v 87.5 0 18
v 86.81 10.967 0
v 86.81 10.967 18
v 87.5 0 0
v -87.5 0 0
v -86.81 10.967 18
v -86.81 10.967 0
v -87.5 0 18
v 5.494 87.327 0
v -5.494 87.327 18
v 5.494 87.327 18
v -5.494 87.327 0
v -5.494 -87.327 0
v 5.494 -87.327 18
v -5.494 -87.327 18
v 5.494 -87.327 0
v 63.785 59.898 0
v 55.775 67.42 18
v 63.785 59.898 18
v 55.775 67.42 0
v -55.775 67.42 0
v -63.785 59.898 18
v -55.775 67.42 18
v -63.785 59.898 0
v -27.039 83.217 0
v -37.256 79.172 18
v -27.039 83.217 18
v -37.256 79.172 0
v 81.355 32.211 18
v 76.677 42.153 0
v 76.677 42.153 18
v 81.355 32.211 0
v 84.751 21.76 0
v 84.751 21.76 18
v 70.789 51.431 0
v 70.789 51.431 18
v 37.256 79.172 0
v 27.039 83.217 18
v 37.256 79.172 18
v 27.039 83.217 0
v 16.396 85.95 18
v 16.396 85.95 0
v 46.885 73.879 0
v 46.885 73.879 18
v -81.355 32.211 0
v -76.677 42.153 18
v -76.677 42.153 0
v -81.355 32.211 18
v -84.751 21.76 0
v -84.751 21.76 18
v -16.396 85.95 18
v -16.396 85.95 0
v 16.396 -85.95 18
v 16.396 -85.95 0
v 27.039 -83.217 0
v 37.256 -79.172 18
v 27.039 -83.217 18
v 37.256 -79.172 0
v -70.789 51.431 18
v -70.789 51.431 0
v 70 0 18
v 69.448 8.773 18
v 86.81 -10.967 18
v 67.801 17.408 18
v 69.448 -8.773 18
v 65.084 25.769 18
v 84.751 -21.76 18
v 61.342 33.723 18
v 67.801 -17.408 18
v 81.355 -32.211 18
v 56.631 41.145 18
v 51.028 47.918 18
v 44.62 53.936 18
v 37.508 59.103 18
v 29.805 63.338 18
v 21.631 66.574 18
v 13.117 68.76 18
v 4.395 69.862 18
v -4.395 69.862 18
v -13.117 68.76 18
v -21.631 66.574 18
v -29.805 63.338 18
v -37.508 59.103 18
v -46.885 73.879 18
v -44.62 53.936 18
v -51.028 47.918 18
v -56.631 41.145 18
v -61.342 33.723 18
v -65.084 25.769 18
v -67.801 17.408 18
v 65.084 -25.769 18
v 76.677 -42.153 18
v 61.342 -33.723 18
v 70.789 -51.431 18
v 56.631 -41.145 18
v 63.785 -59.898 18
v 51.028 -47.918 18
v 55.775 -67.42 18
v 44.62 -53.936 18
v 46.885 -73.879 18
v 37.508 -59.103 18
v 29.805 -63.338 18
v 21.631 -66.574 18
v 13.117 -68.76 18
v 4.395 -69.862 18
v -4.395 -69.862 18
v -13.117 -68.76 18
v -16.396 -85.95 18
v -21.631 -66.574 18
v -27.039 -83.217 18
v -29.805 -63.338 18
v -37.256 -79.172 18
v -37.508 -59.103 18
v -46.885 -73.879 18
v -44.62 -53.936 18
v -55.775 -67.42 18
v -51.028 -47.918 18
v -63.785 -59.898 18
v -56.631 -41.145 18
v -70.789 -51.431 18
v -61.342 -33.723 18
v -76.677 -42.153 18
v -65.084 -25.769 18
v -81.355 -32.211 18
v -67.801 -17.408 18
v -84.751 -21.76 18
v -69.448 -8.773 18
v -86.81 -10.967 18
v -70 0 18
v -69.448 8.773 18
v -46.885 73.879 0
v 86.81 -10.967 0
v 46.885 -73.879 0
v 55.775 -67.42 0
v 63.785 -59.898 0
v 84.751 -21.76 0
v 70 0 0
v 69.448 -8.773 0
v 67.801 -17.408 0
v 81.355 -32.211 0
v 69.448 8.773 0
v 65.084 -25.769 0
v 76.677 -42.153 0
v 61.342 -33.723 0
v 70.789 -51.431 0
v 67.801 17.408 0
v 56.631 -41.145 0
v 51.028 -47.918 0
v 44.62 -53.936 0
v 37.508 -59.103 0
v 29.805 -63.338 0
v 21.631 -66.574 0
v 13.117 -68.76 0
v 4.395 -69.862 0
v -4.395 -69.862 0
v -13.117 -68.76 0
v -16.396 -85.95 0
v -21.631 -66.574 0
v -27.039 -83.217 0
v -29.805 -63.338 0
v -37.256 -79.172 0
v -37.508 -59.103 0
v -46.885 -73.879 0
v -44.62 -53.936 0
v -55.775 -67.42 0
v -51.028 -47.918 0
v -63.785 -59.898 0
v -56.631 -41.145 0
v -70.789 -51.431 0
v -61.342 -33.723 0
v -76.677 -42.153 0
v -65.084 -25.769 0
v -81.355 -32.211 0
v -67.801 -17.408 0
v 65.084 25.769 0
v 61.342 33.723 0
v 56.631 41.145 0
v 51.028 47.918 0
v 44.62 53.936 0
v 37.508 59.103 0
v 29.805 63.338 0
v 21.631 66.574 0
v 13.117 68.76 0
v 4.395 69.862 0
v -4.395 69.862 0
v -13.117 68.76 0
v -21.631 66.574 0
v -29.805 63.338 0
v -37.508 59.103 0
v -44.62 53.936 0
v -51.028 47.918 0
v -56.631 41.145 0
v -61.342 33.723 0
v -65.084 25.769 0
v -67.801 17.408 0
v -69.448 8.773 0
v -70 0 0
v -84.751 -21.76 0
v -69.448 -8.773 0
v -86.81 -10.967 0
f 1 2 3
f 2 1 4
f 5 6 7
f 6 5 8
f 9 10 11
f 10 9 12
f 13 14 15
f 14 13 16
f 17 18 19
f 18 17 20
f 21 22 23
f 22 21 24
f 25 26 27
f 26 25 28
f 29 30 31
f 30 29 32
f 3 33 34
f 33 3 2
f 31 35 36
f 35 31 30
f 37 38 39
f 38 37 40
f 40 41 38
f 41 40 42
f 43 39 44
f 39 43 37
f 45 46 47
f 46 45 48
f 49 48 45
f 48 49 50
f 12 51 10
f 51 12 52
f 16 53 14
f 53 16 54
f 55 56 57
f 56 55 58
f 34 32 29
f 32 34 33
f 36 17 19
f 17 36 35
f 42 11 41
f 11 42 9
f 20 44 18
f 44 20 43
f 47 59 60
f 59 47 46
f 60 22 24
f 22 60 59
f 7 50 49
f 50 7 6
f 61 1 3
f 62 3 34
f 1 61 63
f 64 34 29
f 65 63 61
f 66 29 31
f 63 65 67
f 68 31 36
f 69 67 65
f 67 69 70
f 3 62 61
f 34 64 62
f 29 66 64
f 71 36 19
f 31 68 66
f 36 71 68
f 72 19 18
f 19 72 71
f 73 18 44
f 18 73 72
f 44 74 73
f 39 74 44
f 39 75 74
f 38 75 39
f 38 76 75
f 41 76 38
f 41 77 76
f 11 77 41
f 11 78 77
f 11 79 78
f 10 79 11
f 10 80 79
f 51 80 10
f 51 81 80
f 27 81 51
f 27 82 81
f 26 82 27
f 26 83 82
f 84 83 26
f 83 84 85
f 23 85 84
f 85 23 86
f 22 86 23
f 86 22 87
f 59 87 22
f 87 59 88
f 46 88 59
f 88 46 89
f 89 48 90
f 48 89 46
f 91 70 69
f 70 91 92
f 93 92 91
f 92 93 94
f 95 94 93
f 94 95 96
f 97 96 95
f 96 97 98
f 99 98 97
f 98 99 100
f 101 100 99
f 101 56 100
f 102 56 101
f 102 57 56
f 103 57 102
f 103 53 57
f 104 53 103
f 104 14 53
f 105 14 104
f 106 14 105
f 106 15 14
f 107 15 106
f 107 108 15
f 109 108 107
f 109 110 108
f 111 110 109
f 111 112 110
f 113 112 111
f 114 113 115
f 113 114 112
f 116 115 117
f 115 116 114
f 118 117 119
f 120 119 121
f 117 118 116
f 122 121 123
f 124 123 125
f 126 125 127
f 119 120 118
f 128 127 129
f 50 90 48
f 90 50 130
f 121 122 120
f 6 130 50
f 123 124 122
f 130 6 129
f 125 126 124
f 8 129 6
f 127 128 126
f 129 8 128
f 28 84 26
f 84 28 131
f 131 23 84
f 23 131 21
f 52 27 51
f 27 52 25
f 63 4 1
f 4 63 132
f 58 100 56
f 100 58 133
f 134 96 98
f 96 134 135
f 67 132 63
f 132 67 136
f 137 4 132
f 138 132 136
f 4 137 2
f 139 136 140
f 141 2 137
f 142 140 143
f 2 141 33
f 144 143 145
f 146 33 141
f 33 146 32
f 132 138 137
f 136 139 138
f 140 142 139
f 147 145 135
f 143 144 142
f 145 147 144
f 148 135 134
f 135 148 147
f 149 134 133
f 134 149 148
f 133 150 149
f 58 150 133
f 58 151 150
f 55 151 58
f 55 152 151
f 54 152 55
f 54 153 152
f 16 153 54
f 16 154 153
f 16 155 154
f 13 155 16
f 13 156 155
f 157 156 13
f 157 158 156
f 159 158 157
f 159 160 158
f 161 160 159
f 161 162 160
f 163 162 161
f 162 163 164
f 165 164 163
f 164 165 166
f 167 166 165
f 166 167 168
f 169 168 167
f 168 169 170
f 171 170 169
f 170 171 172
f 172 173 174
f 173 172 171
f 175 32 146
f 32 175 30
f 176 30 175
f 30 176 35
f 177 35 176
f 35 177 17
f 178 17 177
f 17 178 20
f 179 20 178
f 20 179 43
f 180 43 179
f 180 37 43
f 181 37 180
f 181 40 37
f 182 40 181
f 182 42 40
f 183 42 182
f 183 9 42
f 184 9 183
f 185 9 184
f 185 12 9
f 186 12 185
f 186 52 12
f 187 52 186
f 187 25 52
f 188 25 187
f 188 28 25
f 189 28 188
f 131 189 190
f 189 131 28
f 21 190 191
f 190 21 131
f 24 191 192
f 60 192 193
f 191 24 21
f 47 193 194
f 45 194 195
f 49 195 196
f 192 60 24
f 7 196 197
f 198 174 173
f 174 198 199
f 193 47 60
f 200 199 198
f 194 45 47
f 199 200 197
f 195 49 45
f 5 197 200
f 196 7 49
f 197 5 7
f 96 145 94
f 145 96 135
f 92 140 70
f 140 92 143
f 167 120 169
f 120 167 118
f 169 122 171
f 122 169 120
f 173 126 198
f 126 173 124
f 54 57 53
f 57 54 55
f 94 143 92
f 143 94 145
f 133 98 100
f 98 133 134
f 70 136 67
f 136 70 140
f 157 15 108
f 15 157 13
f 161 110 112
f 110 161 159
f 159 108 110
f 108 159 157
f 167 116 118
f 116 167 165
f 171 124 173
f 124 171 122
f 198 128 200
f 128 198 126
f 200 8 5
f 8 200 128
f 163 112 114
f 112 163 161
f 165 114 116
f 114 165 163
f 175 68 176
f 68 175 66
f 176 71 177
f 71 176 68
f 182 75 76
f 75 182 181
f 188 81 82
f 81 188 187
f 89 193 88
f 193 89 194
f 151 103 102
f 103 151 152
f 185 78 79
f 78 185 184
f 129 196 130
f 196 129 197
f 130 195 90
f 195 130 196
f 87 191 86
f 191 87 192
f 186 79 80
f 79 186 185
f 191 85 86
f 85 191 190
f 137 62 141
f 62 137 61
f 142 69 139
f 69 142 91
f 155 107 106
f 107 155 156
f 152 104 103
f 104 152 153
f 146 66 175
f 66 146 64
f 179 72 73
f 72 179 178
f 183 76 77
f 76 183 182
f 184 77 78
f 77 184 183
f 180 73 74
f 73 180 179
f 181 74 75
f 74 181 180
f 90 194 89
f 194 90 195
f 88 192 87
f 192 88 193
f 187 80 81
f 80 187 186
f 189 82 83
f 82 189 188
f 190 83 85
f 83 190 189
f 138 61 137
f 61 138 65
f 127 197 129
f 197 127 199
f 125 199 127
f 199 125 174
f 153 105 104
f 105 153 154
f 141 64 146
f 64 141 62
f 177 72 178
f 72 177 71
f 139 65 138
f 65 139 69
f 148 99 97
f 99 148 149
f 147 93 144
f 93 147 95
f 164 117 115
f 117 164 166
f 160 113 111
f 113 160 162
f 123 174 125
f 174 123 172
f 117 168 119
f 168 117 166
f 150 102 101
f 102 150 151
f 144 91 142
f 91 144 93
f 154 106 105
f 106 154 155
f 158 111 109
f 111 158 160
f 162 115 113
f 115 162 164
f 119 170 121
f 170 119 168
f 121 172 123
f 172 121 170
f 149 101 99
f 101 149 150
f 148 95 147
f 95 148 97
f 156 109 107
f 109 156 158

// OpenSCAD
$fn = 50;


difference() {
	union() {
		cylinder(h = 18, r = 87.5000000000);
	}
	union() {
		cylinder(h = 18, r = 70.0000000000);
	}
}
